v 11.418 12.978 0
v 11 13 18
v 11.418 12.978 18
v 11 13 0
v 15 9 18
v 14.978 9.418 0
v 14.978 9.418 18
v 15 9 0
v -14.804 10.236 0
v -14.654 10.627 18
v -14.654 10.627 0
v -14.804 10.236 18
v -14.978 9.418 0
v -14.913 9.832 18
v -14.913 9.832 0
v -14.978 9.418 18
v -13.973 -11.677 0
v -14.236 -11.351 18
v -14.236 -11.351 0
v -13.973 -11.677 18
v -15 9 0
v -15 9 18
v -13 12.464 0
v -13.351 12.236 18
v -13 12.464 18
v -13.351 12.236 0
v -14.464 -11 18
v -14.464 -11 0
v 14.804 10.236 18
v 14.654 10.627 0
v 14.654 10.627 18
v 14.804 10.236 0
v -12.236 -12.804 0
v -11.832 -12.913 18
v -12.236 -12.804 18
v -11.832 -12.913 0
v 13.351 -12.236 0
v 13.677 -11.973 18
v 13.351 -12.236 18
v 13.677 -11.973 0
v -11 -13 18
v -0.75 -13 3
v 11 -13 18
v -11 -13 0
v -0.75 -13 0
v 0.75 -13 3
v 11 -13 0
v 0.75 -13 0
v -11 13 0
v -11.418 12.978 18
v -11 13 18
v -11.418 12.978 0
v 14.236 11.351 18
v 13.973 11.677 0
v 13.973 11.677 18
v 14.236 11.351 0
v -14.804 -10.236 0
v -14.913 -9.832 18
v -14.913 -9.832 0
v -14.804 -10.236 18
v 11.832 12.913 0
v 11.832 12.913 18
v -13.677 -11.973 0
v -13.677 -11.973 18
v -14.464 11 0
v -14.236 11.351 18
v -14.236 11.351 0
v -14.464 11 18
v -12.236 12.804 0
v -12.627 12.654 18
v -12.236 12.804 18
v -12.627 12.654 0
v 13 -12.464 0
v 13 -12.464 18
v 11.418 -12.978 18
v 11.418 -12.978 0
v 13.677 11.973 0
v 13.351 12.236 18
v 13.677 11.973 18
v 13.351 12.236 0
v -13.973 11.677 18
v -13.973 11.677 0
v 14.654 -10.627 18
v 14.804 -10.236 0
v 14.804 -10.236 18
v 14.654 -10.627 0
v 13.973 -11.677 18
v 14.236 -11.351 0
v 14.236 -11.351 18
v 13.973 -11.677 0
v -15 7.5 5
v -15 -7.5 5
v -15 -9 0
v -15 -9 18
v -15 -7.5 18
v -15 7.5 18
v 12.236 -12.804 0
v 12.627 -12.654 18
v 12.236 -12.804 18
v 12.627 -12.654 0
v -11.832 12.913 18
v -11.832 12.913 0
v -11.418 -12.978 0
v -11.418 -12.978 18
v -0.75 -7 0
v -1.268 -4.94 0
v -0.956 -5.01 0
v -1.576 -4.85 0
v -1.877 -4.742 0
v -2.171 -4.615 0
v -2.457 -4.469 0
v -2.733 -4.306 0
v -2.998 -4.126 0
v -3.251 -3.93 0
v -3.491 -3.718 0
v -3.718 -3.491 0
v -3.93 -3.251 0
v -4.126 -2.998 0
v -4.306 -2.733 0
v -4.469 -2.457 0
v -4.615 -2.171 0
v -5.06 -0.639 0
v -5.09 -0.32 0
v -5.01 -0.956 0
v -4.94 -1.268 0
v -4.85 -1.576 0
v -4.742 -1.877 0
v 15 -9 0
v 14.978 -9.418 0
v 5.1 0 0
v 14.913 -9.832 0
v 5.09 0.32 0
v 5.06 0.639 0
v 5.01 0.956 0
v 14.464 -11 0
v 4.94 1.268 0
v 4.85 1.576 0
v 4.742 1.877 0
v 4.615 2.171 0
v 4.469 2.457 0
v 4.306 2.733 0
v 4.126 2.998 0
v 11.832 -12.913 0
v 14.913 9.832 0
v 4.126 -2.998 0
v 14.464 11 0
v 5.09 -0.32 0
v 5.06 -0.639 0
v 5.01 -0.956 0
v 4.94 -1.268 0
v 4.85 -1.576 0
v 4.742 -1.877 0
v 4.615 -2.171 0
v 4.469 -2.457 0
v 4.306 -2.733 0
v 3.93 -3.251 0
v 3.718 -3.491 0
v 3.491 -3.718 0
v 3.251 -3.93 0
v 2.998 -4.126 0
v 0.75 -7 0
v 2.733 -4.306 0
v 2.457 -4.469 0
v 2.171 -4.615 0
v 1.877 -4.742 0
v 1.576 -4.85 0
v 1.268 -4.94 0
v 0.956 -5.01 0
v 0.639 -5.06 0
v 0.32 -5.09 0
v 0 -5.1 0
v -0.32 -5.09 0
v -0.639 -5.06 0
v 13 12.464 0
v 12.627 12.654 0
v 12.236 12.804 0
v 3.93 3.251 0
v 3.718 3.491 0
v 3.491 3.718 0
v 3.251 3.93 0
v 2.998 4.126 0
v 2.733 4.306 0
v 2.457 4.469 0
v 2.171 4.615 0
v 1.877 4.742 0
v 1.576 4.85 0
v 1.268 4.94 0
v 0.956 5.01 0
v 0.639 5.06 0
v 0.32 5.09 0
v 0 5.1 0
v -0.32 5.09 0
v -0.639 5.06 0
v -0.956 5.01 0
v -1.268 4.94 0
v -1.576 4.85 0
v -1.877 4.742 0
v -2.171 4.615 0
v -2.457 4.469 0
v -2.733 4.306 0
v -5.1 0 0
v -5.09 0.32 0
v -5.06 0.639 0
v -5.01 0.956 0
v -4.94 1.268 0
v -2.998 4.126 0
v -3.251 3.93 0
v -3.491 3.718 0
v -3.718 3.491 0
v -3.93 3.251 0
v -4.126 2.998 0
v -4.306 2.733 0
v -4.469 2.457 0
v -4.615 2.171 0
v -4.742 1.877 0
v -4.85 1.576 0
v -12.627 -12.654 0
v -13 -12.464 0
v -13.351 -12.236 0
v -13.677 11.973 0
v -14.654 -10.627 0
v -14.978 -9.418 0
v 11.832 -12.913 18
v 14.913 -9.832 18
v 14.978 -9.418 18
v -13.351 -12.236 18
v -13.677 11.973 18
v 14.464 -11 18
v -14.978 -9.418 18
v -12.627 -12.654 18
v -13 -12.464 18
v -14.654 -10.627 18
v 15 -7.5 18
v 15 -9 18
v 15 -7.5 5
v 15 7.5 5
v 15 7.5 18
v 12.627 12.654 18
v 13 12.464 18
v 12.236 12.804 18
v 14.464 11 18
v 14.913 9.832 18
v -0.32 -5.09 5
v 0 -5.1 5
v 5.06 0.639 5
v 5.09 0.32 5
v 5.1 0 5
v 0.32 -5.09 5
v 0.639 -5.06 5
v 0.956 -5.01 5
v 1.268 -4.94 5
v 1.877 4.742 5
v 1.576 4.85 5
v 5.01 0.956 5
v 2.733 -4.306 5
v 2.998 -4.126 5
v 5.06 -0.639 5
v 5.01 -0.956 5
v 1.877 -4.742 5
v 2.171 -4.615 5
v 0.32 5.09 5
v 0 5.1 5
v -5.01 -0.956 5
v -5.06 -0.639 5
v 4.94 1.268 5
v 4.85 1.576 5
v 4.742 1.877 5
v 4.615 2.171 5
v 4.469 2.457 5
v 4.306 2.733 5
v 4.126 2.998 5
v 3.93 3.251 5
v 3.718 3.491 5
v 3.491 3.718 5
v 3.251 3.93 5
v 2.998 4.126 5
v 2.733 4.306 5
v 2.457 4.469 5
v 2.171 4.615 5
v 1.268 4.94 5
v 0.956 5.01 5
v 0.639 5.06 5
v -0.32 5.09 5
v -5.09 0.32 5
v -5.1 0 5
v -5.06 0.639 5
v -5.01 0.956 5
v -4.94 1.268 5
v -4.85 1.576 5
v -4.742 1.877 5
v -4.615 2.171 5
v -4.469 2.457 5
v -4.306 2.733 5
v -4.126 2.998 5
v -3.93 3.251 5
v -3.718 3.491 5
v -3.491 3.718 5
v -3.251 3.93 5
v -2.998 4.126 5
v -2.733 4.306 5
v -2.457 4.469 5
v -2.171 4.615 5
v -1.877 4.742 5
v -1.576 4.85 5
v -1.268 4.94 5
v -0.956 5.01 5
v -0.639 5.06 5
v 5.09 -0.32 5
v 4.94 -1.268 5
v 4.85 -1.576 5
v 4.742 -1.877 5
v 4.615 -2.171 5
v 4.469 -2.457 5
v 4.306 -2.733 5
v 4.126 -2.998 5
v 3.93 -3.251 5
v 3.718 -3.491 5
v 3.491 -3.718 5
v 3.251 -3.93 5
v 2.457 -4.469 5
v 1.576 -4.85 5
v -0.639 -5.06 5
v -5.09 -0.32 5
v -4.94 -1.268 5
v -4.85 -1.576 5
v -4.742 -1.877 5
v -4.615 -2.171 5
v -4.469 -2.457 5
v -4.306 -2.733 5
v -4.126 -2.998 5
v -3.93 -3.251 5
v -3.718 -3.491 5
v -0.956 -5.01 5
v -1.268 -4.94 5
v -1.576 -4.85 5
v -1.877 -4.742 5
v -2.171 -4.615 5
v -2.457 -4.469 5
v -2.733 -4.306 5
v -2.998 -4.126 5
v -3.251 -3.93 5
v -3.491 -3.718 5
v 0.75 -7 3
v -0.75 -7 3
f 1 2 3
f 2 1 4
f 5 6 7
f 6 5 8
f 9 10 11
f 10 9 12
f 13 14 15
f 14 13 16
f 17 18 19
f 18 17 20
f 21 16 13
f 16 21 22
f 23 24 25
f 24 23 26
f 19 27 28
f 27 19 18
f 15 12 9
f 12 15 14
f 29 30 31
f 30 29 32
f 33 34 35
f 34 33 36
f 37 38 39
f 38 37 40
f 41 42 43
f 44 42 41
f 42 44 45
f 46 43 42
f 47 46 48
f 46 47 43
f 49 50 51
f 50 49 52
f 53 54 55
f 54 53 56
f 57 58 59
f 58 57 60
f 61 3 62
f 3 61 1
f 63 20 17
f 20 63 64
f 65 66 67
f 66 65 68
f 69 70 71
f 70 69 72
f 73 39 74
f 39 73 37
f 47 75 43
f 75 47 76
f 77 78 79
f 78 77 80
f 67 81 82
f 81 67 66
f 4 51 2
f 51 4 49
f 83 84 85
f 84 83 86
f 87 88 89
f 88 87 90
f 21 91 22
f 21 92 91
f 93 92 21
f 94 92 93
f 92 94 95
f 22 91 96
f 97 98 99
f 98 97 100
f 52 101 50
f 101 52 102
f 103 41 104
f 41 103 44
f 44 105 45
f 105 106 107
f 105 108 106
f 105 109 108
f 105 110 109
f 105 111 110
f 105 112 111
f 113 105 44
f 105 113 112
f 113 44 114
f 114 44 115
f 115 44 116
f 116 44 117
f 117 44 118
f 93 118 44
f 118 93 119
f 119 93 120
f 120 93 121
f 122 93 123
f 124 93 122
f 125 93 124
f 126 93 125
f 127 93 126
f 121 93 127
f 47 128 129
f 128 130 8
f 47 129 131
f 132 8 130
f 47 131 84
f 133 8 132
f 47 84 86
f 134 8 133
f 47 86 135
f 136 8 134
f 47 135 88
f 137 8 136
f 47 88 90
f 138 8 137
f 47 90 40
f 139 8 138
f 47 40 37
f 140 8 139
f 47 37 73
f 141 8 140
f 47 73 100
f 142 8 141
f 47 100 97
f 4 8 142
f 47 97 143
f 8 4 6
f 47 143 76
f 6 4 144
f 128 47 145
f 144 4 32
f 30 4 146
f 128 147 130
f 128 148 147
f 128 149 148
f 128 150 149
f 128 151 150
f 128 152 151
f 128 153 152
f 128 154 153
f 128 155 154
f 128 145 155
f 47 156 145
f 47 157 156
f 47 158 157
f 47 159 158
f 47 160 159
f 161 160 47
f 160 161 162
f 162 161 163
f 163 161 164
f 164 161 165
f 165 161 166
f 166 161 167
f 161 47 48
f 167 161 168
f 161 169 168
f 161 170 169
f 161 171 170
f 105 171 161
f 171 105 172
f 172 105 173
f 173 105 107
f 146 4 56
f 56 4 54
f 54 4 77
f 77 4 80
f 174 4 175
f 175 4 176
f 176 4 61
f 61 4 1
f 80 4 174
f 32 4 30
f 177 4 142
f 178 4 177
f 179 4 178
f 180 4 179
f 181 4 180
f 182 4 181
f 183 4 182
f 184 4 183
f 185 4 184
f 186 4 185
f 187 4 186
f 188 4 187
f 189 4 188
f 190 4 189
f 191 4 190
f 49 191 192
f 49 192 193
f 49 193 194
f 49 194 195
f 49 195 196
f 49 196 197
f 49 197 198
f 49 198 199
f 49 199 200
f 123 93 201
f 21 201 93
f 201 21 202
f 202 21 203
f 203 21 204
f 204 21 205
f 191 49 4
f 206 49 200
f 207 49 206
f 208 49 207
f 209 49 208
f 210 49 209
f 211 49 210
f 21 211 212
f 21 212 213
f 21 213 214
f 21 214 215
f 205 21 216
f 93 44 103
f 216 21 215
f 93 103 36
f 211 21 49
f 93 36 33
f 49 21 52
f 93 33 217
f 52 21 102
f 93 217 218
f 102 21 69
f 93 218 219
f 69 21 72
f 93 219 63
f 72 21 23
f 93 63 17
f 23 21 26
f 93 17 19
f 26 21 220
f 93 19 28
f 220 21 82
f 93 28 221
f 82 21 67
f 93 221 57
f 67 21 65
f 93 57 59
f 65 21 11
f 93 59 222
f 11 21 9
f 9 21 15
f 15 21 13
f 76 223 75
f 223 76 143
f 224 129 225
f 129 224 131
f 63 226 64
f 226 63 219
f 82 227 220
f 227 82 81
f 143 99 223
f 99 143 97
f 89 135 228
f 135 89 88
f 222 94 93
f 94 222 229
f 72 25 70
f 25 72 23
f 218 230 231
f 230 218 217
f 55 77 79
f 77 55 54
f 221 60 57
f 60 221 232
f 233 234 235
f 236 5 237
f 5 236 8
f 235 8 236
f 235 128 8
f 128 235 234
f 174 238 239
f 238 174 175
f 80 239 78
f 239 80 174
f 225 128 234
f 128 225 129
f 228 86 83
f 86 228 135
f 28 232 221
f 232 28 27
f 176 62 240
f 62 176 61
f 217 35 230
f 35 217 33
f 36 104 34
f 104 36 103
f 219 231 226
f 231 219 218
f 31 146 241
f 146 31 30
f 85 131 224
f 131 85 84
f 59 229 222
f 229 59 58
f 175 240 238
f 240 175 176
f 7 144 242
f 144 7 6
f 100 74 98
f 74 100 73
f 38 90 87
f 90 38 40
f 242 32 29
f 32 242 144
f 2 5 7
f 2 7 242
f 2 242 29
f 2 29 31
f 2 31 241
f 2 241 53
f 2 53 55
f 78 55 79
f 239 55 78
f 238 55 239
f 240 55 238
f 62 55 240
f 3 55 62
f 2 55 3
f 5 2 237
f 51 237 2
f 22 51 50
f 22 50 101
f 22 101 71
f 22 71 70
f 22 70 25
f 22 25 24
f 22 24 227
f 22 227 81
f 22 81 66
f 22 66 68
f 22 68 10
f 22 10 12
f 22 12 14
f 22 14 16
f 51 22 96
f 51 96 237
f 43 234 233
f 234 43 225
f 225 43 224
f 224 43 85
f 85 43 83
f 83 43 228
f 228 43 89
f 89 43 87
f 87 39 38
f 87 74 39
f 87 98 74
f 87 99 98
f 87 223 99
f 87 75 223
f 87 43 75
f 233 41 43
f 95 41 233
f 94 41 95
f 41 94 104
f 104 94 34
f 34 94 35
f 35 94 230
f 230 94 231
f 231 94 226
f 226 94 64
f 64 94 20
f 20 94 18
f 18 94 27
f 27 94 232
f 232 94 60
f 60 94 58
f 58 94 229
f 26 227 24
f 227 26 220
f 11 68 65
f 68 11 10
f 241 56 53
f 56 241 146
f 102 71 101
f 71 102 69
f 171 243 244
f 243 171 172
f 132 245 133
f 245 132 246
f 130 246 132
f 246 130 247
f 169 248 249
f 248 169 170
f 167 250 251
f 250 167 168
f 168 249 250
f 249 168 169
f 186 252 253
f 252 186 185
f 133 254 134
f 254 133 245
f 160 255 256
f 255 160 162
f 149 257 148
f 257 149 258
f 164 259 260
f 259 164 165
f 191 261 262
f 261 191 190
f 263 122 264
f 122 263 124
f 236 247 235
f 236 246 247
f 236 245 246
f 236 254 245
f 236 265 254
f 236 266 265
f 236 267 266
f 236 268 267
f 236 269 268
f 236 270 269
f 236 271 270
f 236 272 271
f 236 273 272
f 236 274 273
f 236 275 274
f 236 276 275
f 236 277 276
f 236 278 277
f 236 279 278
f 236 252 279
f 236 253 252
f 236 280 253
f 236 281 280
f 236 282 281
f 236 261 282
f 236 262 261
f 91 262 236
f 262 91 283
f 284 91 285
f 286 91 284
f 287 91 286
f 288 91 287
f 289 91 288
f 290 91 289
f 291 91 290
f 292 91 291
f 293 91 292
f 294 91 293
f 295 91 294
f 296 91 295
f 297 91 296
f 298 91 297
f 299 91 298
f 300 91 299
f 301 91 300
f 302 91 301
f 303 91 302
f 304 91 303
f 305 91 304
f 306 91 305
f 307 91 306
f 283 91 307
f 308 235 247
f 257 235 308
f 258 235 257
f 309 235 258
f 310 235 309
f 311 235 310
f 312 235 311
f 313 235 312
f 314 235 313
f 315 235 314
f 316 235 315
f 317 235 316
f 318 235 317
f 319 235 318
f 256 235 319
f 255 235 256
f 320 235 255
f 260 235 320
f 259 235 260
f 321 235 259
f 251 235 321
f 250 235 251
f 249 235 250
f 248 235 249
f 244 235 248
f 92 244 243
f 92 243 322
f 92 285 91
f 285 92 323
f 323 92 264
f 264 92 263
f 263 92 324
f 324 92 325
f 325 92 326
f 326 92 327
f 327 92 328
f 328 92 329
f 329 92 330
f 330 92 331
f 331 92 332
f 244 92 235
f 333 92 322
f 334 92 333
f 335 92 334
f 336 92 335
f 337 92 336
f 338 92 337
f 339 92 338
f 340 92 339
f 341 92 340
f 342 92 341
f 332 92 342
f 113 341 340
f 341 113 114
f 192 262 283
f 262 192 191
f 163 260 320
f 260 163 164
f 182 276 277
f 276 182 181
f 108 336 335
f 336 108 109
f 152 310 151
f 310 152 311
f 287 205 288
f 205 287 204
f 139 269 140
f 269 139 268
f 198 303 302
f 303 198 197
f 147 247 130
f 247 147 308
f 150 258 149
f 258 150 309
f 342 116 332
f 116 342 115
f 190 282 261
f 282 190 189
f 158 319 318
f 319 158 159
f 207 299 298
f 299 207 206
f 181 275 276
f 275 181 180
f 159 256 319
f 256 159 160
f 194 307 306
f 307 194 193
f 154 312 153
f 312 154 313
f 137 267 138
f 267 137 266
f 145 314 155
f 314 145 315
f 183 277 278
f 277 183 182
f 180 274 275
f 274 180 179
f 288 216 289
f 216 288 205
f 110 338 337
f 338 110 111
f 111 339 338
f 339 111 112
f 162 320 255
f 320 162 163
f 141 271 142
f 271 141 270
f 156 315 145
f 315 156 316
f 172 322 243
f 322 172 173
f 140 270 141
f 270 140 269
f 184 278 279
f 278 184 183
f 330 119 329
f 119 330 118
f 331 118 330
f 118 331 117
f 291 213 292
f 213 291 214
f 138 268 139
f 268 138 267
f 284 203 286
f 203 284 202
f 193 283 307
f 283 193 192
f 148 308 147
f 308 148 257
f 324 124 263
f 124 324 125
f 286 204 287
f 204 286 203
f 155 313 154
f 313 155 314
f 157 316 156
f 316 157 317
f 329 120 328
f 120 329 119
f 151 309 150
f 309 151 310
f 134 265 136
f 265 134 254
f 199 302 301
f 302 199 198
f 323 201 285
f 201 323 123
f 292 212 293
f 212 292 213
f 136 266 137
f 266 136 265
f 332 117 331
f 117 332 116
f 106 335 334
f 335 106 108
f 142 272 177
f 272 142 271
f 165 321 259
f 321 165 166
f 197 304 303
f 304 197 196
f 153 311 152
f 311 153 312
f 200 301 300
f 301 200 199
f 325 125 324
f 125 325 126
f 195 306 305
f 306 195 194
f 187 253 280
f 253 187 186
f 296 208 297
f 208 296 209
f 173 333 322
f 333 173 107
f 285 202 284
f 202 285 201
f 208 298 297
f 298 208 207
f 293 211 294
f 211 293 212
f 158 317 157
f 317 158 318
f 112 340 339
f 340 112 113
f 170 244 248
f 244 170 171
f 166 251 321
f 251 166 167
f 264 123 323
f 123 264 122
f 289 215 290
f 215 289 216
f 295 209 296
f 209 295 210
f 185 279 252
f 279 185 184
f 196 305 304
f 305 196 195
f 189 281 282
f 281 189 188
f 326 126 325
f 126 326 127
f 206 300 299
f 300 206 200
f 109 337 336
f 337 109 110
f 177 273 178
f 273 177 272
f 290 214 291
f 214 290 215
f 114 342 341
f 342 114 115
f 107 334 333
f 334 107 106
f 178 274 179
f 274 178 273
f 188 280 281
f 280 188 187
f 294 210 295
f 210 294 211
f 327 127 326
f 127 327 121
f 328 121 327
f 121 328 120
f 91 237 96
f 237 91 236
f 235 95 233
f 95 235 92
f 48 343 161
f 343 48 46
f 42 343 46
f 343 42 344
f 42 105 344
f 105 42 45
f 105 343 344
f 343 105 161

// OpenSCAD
// V52-R Ergo-Snap
// Specifically for Vybronics VG1030001XH (10mm x 3mm)

module v52_right_final() {
    difference() {
        // 1. THE ERGONOMIC BODY (Solid Base)
        hull() {
            translate([-11, -9, 0])  cylinder(r=4, h=18, $fn=60);
            translate([11, -9, 0])   cylinder(r=4, h=18, $fn=60);
            translate([-11, 9, 0])   cylinder(r=4, h=18, $fn=60);
            translate([11, 9, 0])    cylinder(r=4, h=18, $fn=60);
        }

        // 2. THE MOTOR "OPENING" (This is the hole you were missing)
        // Set to 10.2mm for a perfect press-fit.
        // It cuts through the bottom 5mm to let the motor touch skin.
        translate([0, 0, -1]) 
            cylinder(d=10.2, h=6, $fn=100);

        // 3. THE BATTERY POD SLOT (Internal Clip)
        // This hallows out the middle so it snaps onto the headphones.
        translate([-15, -7.5, 5]) 
            cube([30, 15, 14]); 

        // 4. WIRE CHANNEL
        // Tiny exit for the AWG 30 wires.
        translate([0, -12, 1.5]) 
            cube([1.5, 10, 3], center=true);

        // 5. EMBOSSED "R" IDENTIFIER
        // Subtracted 1.5mm into the top surface.
        translate([0, 0, 17]) 
            linear_extrude(height = 2) 
                text("R", size=9, font="Arial:style=Bold", halign="center", valign="center");
    }
}

v52_right_final();
